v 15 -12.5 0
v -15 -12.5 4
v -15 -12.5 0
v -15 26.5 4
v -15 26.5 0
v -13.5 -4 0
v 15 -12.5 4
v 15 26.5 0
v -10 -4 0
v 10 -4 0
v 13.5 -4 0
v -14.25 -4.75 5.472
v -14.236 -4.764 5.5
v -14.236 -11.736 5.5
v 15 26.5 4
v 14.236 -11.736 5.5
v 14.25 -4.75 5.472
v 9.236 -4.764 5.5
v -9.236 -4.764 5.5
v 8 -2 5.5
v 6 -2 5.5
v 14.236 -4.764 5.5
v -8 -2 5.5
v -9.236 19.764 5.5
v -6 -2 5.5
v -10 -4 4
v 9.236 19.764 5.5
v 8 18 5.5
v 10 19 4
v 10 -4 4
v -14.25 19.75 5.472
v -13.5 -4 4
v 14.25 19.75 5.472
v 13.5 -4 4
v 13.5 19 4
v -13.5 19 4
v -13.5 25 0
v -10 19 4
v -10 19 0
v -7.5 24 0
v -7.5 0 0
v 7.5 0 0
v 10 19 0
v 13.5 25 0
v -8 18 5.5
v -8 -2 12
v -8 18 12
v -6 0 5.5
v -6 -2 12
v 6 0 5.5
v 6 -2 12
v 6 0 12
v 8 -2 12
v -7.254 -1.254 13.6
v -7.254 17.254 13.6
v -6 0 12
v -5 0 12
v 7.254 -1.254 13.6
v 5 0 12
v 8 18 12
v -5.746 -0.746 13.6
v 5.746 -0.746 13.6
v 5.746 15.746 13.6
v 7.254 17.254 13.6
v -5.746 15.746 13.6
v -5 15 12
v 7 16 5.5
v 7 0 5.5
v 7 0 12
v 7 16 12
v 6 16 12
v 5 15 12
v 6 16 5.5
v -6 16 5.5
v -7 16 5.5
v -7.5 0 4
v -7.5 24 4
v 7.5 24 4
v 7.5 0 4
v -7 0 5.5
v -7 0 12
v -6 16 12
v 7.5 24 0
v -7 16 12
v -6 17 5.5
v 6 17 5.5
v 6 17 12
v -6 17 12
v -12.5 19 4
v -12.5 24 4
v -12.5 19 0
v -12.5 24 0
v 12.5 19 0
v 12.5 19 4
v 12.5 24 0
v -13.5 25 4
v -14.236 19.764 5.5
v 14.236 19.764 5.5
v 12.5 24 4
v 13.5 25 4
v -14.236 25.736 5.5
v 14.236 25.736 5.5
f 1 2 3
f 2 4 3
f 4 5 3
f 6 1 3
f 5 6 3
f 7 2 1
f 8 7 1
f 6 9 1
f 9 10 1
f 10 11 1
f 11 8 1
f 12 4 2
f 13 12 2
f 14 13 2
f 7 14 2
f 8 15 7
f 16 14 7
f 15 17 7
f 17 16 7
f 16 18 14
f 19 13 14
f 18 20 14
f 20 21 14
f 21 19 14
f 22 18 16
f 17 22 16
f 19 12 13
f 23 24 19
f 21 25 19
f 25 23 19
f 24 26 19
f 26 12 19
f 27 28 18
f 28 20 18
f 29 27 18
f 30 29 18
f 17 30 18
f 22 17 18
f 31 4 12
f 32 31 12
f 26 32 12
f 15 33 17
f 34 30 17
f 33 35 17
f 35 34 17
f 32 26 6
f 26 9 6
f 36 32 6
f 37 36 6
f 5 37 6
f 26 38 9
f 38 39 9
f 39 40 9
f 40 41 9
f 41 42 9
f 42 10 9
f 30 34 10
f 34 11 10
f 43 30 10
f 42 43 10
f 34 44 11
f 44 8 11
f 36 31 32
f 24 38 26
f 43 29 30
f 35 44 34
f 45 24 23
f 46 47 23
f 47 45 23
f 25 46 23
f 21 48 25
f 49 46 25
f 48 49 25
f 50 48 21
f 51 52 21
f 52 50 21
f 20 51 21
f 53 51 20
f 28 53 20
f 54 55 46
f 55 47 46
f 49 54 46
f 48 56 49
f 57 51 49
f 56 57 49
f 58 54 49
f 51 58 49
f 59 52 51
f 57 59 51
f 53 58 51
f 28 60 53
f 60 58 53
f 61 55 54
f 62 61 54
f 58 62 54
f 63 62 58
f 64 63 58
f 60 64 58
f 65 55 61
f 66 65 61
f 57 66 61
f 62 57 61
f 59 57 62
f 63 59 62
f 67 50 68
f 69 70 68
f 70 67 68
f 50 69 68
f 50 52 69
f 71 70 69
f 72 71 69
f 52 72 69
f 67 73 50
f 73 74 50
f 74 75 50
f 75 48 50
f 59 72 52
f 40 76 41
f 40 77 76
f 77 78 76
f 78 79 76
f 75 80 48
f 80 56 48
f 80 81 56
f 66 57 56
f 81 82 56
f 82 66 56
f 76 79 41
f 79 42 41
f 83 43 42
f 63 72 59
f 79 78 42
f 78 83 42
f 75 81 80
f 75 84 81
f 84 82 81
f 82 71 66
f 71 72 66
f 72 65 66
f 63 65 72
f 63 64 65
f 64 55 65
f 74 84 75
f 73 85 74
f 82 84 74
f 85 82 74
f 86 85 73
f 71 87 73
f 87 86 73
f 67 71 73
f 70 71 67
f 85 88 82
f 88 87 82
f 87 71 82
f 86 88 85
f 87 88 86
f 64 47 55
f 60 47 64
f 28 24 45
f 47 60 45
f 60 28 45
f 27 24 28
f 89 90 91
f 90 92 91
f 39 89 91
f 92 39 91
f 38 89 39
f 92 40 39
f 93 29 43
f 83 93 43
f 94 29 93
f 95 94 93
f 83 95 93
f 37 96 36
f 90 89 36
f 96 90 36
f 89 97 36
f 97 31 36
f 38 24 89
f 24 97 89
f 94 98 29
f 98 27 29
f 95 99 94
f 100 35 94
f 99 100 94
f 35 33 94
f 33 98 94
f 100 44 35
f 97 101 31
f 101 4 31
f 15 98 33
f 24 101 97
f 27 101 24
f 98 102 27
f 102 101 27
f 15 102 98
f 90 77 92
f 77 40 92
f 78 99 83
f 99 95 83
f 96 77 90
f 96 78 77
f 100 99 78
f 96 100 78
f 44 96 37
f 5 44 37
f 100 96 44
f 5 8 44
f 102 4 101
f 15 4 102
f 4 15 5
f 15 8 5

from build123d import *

# Parameters (mm, degrees)
ESBO_O1_W                = 6
ESBO_O1_H                = 6
ESBO_O1_H_2              = 1
ESBO_O1_H_3              = 1.5
RESSALTO_EXTRUS_O1_DEPTH = 4
ESBO_O2_W                = 30
ESBO_O2_H                = 39
ESBO_O2_W_2              = 3.5
ESBO_O2_H_2              = 23
RESSALTO_EXTRUS_O2_DEPTH = 1.5
RESSALTO_EXTRUS_O2_TAPER = 27
ESBO_O3_W                = 1
ESBO_O3_H                = 1
RESSALTO_EXTRUS_O3_DEPTH = 6.5
ESBO_O4_W                = 16
ESBO_O4_H                = 20
ESBO_O4_W_2              = 10
ESBO_O4_H_2              = 15
RESSALTO_EXTRUS_O4_DEPTH = 1.6
RESSALTO_EXTRUS_O4_DRAFT = 25


with BuildPart() as part:
    # Esboço1 → Ressalto-extrusão1 (new body)
    with BuildSketch(Plane.XY):
        Polygon((13.5, 25), (13.5, 19), (13.5, 0), (13.5, -4), (13.5, -11), (6, -11), (6, -12.5), (15, -12.5), (15, 0), (15, 26.5), (0, 26.5), (-15, 26.5), (-15, 0), (-15, -12.5), (-6, -12.5), (-6, -11), (-13.5, -11), (-13.5, -4), (-13.5, 0), (-13.5, 19), (-13.5, 25), (0, 25), align=None)
        Polygon((-10, 0), (-7.5, 0), (-7.5, 19), (-7.5, 24), (-12.5, 24), (-12.5, 19), (-10, 19), align=None)
        Polygon((7.5, 19), (7.5, 0), (10, 0), (10, 19), (12.5, 19), (12.5, 24), (7.5, 24), align=None)
        Polygon((7.5, 0), (0, 0), (-7.5, 0), (-10, 0), (-10, -4), (-6, -4), (0, -4), (6, -4), (10, -4), (10, 0), align=None)
        Polygon((-6, -4), (-10, -4), (-12.5, -4), (-12.5, -10), (-6, -10), align=None)
        Polygon((-12.5, -10), (-12.5, -4), (-13.5, -4), (-13.5, -11), (-6, -11), (-6, -10), align=None)
        Polygon((12.5, -4), (10, -4), (6, -4), (6, -10), (12.5, -10), align=None)
        Polygon((13.5, -4), (12.5, -4), (12.5, -10), (6, -10), (6, -11), (13.5, -11), align=None)
        with Locations((-3, -7)):
            Rectangle(ESBO_O1_W, ESBO_O1_H)
        with Locations((3, -7)):
            Rectangle(ESBO_O1_W, ESBO_O1_H)
        with Locations((3, -10.5)):
            Rectangle(ESBO_O1_W, ESBO_O1_H_2)
        with Locations((-3, -10.5)):
            Rectangle(ESBO_O1_W, ESBO_O1_H_2)
        with Locations((-3, -11.75)):
            Rectangle(ESBO_O1_W, ESBO_O1_H_3)
        with Locations((3, -11.75)):
            Rectangle(ESBO_O1_W, ESBO_O1_H_3)
    extrude(amount=RESSALTO_EXTRUS_O1_DEPTH)

    # Esboço2 → Ressalto-extrusão2 (add)
    with BuildSketch(Plane.XY.offset(4)):
        with Locations((0, 7)):
            Rectangle(ESBO_O2_W, ESBO_O2_H)
        with Locations((11.75, 7.5)):
            Rectangle(ESBO_O2_W_2, ESBO_O2_H_2, mode=Mode.SUBTRACT)
        with Locations((-11.75, 7.5)):
            Rectangle(ESBO_O2_W_2, ESBO_O2_H_2, mode=Mode.SUBTRACT)
    extrude(amount=RESSALTO_EXTRUS_O2_DEPTH, taper=RESSALTO_EXTRUS_O2_TAPER)

    # Esboço3 → Ressalto-extrusão3 (add)
    with BuildSketch(Plane.XY.offset(5.5)):
        Polygon((7, 16), (7, 0), (7, -1), (7, -2), (8, -2), (8, 18), (-8, 18), (-8, -2), (-7, -2), (-7, -1), (-7, 0), (-7, 16), (-7, 17), (-6, 17), (6, 17), (7, 17), align=None)
        with Locations((-6.5, -1.5)):
            Rectangle(ESBO_O3_W, ESBO_O3_H)
        with Locations((-6.5, -0.5)):
            Rectangle(ESBO_O3_W, ESBO_O3_H)
        with Locations((-6.5, 16.5)):
            Rectangle(ESBO_O3_W, ESBO_O3_H)
        with Locations((6.5, 16.5)):
            Rectangle(ESBO_O3_W, ESBO_O3_H)
        with Locations((6.5, -0.5)):
            Rectangle(ESBO_O3_W, ESBO_O3_H)
        with Locations((6.5, -1.5)):
            Rectangle(ESBO_O3_W, ESBO_O3_H)
    extrude(amount=RESSALTO_EXTRUS_O3_DEPTH)


with BuildPart() as ressalto_extrus_o4_tool:
    # Esboço4 → Ressalto-extrusão4 (with draft: the straight prism first)
    with BuildSketch(Plane.XY.offset(12)):
        with Locations((0, 8)):
            Rectangle(ESBO_O4_W, ESBO_O4_H)
        with Locations((0, 7.5)):
            Rectangle(ESBO_O4_W_2, ESBO_O4_H_2, mode=Mode.SUBTRACT)
    extrude(amount=RESSALTO_EXTRUS_O4_DEPTH)
    # Ressalto-extrusão4: the draft: its side faces are tilted about the plane it starts from
    ressalto_extrus_o4_sides = [ressalto_extrus_o4_tool.faces().sort_by_distance(p)[0] for p in [
        (-8, 8, 12.8),
        (0, -2, 12.8),
        (8, 8, 12.8),
        (0, 18, 12.8),
        (0, 15, 12.8),
        (5, 7.5, 12.8),
        (0, 0, 12.8),
        (-5, 7.5, 12.8),
    ]]
    draft(ressalto_extrus_o4_sides, Plane.XY.offset(12), RESSALTO_EXTRUS_O4_DRAFT)


with BuildPart() as part_1:
    add(part.part)

    # Ressalto-extrusão4: add ressalto_extrus_o4_tool
    add(ressalto_extrus_o4_tool.part)


solid = part_1.part
